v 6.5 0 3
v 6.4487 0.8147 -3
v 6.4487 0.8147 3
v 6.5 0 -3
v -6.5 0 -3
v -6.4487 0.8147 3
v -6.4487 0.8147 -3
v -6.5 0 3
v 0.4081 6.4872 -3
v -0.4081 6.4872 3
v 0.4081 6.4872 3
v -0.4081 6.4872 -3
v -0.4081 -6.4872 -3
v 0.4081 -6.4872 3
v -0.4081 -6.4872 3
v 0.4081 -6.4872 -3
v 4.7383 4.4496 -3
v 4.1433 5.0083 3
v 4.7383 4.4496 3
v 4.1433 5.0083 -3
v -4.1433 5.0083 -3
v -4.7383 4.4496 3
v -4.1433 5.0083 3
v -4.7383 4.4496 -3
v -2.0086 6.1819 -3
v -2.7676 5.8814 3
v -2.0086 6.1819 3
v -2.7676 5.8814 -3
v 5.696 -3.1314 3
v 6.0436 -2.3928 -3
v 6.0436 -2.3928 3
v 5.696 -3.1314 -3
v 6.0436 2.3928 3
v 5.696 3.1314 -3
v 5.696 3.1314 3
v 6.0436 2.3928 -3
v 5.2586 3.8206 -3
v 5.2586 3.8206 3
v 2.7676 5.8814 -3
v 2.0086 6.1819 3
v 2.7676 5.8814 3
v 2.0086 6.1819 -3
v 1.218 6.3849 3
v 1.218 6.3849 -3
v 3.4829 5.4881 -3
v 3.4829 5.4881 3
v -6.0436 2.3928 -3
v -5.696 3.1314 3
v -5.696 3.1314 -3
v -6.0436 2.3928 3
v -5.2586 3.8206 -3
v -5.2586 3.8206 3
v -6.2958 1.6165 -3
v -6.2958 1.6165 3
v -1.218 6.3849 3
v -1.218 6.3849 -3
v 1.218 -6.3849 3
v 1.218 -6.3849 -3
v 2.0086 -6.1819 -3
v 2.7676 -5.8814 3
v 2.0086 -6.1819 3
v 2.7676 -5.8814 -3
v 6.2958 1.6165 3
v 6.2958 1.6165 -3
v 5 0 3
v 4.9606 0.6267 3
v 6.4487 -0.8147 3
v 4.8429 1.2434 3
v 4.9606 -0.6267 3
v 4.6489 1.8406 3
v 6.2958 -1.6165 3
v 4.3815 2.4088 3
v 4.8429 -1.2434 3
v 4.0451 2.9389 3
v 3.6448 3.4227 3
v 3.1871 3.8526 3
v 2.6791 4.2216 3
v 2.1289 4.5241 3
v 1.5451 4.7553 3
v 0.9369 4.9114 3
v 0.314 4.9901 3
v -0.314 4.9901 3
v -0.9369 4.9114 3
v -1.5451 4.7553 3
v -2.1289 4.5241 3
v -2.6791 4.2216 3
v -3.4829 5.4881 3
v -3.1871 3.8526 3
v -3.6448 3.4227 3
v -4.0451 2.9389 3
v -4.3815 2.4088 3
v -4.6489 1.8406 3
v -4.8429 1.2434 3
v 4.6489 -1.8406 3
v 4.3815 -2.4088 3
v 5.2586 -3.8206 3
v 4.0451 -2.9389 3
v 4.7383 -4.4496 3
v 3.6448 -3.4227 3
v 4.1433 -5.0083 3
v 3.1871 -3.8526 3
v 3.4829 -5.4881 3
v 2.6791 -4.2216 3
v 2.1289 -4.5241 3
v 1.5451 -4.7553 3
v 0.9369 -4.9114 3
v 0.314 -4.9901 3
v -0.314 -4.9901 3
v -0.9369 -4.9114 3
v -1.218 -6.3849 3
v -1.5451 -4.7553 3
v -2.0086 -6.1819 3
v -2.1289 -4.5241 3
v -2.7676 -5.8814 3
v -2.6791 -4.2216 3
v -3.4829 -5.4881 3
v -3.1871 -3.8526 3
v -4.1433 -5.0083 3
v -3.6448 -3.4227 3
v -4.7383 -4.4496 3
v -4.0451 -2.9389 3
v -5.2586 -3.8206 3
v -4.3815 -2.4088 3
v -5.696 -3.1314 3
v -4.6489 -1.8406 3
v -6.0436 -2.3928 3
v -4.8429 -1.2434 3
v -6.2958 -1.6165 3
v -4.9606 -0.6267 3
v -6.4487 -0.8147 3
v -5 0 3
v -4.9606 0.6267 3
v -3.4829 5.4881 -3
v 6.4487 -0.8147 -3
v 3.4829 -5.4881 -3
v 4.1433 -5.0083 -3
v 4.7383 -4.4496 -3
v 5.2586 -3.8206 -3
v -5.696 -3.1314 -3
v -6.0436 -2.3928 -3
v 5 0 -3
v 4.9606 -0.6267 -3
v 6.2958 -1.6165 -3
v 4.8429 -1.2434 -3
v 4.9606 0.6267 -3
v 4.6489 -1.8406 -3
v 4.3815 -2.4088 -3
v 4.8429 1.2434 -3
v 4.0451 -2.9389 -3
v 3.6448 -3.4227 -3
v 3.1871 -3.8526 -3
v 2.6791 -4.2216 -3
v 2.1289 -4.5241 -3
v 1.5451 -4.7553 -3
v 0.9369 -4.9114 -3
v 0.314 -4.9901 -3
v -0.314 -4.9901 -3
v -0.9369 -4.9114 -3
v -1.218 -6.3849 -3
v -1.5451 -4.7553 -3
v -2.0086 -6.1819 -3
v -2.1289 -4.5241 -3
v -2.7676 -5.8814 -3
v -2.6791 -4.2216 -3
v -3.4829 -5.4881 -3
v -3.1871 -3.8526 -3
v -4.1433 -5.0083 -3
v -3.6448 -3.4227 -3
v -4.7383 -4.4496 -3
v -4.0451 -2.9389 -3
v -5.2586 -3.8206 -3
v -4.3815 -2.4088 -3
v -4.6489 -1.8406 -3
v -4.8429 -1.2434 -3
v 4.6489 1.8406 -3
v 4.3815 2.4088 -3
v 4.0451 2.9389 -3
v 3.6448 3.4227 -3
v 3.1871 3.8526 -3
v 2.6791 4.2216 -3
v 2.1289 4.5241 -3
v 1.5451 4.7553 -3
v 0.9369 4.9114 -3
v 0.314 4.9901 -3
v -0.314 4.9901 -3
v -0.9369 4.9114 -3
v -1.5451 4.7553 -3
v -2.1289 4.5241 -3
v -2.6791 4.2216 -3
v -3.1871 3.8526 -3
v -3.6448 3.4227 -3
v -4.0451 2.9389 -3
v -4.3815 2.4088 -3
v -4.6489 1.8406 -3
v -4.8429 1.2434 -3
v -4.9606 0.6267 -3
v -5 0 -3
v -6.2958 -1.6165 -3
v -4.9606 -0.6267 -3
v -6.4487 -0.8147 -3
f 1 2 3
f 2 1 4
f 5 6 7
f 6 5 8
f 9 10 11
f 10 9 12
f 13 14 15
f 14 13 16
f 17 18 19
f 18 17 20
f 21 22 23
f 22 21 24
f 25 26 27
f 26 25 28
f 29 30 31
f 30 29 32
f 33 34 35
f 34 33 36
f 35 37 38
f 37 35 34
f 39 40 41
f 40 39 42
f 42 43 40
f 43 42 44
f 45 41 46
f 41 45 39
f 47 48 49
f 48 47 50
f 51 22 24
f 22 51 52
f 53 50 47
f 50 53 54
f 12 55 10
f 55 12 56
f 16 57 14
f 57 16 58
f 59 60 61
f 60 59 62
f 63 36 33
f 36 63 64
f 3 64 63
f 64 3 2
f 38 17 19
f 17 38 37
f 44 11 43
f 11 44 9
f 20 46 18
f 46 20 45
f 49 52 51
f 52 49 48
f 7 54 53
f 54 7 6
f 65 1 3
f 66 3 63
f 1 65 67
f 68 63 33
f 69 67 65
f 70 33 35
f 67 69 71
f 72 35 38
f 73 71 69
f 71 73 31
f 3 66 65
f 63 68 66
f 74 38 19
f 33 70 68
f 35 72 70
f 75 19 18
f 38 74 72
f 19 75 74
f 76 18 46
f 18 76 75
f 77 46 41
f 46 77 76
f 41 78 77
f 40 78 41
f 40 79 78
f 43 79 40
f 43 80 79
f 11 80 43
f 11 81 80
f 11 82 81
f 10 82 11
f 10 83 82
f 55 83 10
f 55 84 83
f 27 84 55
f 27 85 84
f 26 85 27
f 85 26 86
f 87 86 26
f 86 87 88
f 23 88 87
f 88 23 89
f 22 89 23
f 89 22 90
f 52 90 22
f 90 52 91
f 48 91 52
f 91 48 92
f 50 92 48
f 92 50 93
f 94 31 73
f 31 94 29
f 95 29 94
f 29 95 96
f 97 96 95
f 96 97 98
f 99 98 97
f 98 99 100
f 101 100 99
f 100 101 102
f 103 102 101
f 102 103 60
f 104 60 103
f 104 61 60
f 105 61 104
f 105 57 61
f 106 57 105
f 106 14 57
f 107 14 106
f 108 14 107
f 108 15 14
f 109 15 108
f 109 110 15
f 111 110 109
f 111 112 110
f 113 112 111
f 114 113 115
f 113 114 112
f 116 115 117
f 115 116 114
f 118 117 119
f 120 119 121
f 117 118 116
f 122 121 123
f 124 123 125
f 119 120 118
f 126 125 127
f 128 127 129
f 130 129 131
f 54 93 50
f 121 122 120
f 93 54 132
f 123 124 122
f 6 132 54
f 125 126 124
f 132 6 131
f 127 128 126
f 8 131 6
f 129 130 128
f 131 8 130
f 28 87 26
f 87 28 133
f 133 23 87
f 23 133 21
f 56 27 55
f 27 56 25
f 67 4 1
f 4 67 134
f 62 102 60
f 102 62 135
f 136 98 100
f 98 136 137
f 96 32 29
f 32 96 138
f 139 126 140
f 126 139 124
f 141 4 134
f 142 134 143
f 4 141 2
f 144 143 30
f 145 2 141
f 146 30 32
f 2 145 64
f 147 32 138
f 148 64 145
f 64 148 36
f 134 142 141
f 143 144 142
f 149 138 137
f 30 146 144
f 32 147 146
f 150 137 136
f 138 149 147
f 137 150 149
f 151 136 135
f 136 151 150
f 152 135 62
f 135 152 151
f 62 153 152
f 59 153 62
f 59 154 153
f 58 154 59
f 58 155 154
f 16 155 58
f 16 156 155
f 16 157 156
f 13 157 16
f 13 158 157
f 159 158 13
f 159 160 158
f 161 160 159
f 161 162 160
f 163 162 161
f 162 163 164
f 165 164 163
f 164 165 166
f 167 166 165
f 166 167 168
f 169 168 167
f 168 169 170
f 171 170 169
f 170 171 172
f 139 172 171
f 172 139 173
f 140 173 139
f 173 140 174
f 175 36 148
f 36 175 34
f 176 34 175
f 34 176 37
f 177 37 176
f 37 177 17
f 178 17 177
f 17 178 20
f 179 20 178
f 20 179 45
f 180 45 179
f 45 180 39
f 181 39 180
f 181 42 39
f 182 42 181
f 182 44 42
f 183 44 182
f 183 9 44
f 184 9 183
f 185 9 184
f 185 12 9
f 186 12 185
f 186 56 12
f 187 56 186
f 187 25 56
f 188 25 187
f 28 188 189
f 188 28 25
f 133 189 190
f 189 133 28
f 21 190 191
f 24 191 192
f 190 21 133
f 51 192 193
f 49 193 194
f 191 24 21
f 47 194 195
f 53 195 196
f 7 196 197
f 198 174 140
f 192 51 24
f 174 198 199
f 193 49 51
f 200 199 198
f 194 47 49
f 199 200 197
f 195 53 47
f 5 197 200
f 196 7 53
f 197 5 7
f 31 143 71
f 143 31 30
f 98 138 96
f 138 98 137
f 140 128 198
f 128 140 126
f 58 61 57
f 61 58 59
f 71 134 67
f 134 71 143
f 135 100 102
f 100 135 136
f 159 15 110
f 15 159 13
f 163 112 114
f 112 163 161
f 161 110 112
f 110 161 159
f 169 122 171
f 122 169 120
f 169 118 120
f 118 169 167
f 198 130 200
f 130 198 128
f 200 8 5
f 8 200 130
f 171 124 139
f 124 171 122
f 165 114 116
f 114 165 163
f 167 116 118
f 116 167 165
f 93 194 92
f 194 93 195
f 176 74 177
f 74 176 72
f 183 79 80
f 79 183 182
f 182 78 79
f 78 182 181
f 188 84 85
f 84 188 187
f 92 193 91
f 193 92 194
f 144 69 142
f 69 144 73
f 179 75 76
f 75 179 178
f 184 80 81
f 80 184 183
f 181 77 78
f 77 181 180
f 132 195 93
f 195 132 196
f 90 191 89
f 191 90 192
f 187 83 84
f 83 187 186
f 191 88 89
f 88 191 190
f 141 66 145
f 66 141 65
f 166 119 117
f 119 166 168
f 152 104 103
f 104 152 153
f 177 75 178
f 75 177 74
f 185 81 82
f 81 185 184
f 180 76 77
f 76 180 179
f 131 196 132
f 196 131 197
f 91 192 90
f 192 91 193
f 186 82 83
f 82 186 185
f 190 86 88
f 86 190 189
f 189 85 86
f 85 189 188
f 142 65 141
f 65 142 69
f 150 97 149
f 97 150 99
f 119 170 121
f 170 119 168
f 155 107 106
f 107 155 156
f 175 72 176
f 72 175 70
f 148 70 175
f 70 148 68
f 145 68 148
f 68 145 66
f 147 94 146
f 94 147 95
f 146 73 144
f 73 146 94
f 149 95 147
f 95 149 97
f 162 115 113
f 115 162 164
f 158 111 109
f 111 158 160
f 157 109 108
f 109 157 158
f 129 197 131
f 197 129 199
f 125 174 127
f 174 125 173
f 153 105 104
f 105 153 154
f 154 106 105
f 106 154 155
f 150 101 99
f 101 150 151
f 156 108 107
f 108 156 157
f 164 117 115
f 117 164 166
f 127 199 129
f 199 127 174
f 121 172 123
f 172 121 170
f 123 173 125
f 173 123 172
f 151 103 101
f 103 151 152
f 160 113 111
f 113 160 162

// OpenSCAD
$fn = 50;


difference() {
	union() {
		translate(v = [0, 0, -3.0000000000]) {
			cylinder(h = 6, r = 6.5000000000);
		}
	}
	union() {
		translate(v = [0, 0, -100.0000000000]) {
			cylinder(h = 200, r = 5);
		}
	}
}
